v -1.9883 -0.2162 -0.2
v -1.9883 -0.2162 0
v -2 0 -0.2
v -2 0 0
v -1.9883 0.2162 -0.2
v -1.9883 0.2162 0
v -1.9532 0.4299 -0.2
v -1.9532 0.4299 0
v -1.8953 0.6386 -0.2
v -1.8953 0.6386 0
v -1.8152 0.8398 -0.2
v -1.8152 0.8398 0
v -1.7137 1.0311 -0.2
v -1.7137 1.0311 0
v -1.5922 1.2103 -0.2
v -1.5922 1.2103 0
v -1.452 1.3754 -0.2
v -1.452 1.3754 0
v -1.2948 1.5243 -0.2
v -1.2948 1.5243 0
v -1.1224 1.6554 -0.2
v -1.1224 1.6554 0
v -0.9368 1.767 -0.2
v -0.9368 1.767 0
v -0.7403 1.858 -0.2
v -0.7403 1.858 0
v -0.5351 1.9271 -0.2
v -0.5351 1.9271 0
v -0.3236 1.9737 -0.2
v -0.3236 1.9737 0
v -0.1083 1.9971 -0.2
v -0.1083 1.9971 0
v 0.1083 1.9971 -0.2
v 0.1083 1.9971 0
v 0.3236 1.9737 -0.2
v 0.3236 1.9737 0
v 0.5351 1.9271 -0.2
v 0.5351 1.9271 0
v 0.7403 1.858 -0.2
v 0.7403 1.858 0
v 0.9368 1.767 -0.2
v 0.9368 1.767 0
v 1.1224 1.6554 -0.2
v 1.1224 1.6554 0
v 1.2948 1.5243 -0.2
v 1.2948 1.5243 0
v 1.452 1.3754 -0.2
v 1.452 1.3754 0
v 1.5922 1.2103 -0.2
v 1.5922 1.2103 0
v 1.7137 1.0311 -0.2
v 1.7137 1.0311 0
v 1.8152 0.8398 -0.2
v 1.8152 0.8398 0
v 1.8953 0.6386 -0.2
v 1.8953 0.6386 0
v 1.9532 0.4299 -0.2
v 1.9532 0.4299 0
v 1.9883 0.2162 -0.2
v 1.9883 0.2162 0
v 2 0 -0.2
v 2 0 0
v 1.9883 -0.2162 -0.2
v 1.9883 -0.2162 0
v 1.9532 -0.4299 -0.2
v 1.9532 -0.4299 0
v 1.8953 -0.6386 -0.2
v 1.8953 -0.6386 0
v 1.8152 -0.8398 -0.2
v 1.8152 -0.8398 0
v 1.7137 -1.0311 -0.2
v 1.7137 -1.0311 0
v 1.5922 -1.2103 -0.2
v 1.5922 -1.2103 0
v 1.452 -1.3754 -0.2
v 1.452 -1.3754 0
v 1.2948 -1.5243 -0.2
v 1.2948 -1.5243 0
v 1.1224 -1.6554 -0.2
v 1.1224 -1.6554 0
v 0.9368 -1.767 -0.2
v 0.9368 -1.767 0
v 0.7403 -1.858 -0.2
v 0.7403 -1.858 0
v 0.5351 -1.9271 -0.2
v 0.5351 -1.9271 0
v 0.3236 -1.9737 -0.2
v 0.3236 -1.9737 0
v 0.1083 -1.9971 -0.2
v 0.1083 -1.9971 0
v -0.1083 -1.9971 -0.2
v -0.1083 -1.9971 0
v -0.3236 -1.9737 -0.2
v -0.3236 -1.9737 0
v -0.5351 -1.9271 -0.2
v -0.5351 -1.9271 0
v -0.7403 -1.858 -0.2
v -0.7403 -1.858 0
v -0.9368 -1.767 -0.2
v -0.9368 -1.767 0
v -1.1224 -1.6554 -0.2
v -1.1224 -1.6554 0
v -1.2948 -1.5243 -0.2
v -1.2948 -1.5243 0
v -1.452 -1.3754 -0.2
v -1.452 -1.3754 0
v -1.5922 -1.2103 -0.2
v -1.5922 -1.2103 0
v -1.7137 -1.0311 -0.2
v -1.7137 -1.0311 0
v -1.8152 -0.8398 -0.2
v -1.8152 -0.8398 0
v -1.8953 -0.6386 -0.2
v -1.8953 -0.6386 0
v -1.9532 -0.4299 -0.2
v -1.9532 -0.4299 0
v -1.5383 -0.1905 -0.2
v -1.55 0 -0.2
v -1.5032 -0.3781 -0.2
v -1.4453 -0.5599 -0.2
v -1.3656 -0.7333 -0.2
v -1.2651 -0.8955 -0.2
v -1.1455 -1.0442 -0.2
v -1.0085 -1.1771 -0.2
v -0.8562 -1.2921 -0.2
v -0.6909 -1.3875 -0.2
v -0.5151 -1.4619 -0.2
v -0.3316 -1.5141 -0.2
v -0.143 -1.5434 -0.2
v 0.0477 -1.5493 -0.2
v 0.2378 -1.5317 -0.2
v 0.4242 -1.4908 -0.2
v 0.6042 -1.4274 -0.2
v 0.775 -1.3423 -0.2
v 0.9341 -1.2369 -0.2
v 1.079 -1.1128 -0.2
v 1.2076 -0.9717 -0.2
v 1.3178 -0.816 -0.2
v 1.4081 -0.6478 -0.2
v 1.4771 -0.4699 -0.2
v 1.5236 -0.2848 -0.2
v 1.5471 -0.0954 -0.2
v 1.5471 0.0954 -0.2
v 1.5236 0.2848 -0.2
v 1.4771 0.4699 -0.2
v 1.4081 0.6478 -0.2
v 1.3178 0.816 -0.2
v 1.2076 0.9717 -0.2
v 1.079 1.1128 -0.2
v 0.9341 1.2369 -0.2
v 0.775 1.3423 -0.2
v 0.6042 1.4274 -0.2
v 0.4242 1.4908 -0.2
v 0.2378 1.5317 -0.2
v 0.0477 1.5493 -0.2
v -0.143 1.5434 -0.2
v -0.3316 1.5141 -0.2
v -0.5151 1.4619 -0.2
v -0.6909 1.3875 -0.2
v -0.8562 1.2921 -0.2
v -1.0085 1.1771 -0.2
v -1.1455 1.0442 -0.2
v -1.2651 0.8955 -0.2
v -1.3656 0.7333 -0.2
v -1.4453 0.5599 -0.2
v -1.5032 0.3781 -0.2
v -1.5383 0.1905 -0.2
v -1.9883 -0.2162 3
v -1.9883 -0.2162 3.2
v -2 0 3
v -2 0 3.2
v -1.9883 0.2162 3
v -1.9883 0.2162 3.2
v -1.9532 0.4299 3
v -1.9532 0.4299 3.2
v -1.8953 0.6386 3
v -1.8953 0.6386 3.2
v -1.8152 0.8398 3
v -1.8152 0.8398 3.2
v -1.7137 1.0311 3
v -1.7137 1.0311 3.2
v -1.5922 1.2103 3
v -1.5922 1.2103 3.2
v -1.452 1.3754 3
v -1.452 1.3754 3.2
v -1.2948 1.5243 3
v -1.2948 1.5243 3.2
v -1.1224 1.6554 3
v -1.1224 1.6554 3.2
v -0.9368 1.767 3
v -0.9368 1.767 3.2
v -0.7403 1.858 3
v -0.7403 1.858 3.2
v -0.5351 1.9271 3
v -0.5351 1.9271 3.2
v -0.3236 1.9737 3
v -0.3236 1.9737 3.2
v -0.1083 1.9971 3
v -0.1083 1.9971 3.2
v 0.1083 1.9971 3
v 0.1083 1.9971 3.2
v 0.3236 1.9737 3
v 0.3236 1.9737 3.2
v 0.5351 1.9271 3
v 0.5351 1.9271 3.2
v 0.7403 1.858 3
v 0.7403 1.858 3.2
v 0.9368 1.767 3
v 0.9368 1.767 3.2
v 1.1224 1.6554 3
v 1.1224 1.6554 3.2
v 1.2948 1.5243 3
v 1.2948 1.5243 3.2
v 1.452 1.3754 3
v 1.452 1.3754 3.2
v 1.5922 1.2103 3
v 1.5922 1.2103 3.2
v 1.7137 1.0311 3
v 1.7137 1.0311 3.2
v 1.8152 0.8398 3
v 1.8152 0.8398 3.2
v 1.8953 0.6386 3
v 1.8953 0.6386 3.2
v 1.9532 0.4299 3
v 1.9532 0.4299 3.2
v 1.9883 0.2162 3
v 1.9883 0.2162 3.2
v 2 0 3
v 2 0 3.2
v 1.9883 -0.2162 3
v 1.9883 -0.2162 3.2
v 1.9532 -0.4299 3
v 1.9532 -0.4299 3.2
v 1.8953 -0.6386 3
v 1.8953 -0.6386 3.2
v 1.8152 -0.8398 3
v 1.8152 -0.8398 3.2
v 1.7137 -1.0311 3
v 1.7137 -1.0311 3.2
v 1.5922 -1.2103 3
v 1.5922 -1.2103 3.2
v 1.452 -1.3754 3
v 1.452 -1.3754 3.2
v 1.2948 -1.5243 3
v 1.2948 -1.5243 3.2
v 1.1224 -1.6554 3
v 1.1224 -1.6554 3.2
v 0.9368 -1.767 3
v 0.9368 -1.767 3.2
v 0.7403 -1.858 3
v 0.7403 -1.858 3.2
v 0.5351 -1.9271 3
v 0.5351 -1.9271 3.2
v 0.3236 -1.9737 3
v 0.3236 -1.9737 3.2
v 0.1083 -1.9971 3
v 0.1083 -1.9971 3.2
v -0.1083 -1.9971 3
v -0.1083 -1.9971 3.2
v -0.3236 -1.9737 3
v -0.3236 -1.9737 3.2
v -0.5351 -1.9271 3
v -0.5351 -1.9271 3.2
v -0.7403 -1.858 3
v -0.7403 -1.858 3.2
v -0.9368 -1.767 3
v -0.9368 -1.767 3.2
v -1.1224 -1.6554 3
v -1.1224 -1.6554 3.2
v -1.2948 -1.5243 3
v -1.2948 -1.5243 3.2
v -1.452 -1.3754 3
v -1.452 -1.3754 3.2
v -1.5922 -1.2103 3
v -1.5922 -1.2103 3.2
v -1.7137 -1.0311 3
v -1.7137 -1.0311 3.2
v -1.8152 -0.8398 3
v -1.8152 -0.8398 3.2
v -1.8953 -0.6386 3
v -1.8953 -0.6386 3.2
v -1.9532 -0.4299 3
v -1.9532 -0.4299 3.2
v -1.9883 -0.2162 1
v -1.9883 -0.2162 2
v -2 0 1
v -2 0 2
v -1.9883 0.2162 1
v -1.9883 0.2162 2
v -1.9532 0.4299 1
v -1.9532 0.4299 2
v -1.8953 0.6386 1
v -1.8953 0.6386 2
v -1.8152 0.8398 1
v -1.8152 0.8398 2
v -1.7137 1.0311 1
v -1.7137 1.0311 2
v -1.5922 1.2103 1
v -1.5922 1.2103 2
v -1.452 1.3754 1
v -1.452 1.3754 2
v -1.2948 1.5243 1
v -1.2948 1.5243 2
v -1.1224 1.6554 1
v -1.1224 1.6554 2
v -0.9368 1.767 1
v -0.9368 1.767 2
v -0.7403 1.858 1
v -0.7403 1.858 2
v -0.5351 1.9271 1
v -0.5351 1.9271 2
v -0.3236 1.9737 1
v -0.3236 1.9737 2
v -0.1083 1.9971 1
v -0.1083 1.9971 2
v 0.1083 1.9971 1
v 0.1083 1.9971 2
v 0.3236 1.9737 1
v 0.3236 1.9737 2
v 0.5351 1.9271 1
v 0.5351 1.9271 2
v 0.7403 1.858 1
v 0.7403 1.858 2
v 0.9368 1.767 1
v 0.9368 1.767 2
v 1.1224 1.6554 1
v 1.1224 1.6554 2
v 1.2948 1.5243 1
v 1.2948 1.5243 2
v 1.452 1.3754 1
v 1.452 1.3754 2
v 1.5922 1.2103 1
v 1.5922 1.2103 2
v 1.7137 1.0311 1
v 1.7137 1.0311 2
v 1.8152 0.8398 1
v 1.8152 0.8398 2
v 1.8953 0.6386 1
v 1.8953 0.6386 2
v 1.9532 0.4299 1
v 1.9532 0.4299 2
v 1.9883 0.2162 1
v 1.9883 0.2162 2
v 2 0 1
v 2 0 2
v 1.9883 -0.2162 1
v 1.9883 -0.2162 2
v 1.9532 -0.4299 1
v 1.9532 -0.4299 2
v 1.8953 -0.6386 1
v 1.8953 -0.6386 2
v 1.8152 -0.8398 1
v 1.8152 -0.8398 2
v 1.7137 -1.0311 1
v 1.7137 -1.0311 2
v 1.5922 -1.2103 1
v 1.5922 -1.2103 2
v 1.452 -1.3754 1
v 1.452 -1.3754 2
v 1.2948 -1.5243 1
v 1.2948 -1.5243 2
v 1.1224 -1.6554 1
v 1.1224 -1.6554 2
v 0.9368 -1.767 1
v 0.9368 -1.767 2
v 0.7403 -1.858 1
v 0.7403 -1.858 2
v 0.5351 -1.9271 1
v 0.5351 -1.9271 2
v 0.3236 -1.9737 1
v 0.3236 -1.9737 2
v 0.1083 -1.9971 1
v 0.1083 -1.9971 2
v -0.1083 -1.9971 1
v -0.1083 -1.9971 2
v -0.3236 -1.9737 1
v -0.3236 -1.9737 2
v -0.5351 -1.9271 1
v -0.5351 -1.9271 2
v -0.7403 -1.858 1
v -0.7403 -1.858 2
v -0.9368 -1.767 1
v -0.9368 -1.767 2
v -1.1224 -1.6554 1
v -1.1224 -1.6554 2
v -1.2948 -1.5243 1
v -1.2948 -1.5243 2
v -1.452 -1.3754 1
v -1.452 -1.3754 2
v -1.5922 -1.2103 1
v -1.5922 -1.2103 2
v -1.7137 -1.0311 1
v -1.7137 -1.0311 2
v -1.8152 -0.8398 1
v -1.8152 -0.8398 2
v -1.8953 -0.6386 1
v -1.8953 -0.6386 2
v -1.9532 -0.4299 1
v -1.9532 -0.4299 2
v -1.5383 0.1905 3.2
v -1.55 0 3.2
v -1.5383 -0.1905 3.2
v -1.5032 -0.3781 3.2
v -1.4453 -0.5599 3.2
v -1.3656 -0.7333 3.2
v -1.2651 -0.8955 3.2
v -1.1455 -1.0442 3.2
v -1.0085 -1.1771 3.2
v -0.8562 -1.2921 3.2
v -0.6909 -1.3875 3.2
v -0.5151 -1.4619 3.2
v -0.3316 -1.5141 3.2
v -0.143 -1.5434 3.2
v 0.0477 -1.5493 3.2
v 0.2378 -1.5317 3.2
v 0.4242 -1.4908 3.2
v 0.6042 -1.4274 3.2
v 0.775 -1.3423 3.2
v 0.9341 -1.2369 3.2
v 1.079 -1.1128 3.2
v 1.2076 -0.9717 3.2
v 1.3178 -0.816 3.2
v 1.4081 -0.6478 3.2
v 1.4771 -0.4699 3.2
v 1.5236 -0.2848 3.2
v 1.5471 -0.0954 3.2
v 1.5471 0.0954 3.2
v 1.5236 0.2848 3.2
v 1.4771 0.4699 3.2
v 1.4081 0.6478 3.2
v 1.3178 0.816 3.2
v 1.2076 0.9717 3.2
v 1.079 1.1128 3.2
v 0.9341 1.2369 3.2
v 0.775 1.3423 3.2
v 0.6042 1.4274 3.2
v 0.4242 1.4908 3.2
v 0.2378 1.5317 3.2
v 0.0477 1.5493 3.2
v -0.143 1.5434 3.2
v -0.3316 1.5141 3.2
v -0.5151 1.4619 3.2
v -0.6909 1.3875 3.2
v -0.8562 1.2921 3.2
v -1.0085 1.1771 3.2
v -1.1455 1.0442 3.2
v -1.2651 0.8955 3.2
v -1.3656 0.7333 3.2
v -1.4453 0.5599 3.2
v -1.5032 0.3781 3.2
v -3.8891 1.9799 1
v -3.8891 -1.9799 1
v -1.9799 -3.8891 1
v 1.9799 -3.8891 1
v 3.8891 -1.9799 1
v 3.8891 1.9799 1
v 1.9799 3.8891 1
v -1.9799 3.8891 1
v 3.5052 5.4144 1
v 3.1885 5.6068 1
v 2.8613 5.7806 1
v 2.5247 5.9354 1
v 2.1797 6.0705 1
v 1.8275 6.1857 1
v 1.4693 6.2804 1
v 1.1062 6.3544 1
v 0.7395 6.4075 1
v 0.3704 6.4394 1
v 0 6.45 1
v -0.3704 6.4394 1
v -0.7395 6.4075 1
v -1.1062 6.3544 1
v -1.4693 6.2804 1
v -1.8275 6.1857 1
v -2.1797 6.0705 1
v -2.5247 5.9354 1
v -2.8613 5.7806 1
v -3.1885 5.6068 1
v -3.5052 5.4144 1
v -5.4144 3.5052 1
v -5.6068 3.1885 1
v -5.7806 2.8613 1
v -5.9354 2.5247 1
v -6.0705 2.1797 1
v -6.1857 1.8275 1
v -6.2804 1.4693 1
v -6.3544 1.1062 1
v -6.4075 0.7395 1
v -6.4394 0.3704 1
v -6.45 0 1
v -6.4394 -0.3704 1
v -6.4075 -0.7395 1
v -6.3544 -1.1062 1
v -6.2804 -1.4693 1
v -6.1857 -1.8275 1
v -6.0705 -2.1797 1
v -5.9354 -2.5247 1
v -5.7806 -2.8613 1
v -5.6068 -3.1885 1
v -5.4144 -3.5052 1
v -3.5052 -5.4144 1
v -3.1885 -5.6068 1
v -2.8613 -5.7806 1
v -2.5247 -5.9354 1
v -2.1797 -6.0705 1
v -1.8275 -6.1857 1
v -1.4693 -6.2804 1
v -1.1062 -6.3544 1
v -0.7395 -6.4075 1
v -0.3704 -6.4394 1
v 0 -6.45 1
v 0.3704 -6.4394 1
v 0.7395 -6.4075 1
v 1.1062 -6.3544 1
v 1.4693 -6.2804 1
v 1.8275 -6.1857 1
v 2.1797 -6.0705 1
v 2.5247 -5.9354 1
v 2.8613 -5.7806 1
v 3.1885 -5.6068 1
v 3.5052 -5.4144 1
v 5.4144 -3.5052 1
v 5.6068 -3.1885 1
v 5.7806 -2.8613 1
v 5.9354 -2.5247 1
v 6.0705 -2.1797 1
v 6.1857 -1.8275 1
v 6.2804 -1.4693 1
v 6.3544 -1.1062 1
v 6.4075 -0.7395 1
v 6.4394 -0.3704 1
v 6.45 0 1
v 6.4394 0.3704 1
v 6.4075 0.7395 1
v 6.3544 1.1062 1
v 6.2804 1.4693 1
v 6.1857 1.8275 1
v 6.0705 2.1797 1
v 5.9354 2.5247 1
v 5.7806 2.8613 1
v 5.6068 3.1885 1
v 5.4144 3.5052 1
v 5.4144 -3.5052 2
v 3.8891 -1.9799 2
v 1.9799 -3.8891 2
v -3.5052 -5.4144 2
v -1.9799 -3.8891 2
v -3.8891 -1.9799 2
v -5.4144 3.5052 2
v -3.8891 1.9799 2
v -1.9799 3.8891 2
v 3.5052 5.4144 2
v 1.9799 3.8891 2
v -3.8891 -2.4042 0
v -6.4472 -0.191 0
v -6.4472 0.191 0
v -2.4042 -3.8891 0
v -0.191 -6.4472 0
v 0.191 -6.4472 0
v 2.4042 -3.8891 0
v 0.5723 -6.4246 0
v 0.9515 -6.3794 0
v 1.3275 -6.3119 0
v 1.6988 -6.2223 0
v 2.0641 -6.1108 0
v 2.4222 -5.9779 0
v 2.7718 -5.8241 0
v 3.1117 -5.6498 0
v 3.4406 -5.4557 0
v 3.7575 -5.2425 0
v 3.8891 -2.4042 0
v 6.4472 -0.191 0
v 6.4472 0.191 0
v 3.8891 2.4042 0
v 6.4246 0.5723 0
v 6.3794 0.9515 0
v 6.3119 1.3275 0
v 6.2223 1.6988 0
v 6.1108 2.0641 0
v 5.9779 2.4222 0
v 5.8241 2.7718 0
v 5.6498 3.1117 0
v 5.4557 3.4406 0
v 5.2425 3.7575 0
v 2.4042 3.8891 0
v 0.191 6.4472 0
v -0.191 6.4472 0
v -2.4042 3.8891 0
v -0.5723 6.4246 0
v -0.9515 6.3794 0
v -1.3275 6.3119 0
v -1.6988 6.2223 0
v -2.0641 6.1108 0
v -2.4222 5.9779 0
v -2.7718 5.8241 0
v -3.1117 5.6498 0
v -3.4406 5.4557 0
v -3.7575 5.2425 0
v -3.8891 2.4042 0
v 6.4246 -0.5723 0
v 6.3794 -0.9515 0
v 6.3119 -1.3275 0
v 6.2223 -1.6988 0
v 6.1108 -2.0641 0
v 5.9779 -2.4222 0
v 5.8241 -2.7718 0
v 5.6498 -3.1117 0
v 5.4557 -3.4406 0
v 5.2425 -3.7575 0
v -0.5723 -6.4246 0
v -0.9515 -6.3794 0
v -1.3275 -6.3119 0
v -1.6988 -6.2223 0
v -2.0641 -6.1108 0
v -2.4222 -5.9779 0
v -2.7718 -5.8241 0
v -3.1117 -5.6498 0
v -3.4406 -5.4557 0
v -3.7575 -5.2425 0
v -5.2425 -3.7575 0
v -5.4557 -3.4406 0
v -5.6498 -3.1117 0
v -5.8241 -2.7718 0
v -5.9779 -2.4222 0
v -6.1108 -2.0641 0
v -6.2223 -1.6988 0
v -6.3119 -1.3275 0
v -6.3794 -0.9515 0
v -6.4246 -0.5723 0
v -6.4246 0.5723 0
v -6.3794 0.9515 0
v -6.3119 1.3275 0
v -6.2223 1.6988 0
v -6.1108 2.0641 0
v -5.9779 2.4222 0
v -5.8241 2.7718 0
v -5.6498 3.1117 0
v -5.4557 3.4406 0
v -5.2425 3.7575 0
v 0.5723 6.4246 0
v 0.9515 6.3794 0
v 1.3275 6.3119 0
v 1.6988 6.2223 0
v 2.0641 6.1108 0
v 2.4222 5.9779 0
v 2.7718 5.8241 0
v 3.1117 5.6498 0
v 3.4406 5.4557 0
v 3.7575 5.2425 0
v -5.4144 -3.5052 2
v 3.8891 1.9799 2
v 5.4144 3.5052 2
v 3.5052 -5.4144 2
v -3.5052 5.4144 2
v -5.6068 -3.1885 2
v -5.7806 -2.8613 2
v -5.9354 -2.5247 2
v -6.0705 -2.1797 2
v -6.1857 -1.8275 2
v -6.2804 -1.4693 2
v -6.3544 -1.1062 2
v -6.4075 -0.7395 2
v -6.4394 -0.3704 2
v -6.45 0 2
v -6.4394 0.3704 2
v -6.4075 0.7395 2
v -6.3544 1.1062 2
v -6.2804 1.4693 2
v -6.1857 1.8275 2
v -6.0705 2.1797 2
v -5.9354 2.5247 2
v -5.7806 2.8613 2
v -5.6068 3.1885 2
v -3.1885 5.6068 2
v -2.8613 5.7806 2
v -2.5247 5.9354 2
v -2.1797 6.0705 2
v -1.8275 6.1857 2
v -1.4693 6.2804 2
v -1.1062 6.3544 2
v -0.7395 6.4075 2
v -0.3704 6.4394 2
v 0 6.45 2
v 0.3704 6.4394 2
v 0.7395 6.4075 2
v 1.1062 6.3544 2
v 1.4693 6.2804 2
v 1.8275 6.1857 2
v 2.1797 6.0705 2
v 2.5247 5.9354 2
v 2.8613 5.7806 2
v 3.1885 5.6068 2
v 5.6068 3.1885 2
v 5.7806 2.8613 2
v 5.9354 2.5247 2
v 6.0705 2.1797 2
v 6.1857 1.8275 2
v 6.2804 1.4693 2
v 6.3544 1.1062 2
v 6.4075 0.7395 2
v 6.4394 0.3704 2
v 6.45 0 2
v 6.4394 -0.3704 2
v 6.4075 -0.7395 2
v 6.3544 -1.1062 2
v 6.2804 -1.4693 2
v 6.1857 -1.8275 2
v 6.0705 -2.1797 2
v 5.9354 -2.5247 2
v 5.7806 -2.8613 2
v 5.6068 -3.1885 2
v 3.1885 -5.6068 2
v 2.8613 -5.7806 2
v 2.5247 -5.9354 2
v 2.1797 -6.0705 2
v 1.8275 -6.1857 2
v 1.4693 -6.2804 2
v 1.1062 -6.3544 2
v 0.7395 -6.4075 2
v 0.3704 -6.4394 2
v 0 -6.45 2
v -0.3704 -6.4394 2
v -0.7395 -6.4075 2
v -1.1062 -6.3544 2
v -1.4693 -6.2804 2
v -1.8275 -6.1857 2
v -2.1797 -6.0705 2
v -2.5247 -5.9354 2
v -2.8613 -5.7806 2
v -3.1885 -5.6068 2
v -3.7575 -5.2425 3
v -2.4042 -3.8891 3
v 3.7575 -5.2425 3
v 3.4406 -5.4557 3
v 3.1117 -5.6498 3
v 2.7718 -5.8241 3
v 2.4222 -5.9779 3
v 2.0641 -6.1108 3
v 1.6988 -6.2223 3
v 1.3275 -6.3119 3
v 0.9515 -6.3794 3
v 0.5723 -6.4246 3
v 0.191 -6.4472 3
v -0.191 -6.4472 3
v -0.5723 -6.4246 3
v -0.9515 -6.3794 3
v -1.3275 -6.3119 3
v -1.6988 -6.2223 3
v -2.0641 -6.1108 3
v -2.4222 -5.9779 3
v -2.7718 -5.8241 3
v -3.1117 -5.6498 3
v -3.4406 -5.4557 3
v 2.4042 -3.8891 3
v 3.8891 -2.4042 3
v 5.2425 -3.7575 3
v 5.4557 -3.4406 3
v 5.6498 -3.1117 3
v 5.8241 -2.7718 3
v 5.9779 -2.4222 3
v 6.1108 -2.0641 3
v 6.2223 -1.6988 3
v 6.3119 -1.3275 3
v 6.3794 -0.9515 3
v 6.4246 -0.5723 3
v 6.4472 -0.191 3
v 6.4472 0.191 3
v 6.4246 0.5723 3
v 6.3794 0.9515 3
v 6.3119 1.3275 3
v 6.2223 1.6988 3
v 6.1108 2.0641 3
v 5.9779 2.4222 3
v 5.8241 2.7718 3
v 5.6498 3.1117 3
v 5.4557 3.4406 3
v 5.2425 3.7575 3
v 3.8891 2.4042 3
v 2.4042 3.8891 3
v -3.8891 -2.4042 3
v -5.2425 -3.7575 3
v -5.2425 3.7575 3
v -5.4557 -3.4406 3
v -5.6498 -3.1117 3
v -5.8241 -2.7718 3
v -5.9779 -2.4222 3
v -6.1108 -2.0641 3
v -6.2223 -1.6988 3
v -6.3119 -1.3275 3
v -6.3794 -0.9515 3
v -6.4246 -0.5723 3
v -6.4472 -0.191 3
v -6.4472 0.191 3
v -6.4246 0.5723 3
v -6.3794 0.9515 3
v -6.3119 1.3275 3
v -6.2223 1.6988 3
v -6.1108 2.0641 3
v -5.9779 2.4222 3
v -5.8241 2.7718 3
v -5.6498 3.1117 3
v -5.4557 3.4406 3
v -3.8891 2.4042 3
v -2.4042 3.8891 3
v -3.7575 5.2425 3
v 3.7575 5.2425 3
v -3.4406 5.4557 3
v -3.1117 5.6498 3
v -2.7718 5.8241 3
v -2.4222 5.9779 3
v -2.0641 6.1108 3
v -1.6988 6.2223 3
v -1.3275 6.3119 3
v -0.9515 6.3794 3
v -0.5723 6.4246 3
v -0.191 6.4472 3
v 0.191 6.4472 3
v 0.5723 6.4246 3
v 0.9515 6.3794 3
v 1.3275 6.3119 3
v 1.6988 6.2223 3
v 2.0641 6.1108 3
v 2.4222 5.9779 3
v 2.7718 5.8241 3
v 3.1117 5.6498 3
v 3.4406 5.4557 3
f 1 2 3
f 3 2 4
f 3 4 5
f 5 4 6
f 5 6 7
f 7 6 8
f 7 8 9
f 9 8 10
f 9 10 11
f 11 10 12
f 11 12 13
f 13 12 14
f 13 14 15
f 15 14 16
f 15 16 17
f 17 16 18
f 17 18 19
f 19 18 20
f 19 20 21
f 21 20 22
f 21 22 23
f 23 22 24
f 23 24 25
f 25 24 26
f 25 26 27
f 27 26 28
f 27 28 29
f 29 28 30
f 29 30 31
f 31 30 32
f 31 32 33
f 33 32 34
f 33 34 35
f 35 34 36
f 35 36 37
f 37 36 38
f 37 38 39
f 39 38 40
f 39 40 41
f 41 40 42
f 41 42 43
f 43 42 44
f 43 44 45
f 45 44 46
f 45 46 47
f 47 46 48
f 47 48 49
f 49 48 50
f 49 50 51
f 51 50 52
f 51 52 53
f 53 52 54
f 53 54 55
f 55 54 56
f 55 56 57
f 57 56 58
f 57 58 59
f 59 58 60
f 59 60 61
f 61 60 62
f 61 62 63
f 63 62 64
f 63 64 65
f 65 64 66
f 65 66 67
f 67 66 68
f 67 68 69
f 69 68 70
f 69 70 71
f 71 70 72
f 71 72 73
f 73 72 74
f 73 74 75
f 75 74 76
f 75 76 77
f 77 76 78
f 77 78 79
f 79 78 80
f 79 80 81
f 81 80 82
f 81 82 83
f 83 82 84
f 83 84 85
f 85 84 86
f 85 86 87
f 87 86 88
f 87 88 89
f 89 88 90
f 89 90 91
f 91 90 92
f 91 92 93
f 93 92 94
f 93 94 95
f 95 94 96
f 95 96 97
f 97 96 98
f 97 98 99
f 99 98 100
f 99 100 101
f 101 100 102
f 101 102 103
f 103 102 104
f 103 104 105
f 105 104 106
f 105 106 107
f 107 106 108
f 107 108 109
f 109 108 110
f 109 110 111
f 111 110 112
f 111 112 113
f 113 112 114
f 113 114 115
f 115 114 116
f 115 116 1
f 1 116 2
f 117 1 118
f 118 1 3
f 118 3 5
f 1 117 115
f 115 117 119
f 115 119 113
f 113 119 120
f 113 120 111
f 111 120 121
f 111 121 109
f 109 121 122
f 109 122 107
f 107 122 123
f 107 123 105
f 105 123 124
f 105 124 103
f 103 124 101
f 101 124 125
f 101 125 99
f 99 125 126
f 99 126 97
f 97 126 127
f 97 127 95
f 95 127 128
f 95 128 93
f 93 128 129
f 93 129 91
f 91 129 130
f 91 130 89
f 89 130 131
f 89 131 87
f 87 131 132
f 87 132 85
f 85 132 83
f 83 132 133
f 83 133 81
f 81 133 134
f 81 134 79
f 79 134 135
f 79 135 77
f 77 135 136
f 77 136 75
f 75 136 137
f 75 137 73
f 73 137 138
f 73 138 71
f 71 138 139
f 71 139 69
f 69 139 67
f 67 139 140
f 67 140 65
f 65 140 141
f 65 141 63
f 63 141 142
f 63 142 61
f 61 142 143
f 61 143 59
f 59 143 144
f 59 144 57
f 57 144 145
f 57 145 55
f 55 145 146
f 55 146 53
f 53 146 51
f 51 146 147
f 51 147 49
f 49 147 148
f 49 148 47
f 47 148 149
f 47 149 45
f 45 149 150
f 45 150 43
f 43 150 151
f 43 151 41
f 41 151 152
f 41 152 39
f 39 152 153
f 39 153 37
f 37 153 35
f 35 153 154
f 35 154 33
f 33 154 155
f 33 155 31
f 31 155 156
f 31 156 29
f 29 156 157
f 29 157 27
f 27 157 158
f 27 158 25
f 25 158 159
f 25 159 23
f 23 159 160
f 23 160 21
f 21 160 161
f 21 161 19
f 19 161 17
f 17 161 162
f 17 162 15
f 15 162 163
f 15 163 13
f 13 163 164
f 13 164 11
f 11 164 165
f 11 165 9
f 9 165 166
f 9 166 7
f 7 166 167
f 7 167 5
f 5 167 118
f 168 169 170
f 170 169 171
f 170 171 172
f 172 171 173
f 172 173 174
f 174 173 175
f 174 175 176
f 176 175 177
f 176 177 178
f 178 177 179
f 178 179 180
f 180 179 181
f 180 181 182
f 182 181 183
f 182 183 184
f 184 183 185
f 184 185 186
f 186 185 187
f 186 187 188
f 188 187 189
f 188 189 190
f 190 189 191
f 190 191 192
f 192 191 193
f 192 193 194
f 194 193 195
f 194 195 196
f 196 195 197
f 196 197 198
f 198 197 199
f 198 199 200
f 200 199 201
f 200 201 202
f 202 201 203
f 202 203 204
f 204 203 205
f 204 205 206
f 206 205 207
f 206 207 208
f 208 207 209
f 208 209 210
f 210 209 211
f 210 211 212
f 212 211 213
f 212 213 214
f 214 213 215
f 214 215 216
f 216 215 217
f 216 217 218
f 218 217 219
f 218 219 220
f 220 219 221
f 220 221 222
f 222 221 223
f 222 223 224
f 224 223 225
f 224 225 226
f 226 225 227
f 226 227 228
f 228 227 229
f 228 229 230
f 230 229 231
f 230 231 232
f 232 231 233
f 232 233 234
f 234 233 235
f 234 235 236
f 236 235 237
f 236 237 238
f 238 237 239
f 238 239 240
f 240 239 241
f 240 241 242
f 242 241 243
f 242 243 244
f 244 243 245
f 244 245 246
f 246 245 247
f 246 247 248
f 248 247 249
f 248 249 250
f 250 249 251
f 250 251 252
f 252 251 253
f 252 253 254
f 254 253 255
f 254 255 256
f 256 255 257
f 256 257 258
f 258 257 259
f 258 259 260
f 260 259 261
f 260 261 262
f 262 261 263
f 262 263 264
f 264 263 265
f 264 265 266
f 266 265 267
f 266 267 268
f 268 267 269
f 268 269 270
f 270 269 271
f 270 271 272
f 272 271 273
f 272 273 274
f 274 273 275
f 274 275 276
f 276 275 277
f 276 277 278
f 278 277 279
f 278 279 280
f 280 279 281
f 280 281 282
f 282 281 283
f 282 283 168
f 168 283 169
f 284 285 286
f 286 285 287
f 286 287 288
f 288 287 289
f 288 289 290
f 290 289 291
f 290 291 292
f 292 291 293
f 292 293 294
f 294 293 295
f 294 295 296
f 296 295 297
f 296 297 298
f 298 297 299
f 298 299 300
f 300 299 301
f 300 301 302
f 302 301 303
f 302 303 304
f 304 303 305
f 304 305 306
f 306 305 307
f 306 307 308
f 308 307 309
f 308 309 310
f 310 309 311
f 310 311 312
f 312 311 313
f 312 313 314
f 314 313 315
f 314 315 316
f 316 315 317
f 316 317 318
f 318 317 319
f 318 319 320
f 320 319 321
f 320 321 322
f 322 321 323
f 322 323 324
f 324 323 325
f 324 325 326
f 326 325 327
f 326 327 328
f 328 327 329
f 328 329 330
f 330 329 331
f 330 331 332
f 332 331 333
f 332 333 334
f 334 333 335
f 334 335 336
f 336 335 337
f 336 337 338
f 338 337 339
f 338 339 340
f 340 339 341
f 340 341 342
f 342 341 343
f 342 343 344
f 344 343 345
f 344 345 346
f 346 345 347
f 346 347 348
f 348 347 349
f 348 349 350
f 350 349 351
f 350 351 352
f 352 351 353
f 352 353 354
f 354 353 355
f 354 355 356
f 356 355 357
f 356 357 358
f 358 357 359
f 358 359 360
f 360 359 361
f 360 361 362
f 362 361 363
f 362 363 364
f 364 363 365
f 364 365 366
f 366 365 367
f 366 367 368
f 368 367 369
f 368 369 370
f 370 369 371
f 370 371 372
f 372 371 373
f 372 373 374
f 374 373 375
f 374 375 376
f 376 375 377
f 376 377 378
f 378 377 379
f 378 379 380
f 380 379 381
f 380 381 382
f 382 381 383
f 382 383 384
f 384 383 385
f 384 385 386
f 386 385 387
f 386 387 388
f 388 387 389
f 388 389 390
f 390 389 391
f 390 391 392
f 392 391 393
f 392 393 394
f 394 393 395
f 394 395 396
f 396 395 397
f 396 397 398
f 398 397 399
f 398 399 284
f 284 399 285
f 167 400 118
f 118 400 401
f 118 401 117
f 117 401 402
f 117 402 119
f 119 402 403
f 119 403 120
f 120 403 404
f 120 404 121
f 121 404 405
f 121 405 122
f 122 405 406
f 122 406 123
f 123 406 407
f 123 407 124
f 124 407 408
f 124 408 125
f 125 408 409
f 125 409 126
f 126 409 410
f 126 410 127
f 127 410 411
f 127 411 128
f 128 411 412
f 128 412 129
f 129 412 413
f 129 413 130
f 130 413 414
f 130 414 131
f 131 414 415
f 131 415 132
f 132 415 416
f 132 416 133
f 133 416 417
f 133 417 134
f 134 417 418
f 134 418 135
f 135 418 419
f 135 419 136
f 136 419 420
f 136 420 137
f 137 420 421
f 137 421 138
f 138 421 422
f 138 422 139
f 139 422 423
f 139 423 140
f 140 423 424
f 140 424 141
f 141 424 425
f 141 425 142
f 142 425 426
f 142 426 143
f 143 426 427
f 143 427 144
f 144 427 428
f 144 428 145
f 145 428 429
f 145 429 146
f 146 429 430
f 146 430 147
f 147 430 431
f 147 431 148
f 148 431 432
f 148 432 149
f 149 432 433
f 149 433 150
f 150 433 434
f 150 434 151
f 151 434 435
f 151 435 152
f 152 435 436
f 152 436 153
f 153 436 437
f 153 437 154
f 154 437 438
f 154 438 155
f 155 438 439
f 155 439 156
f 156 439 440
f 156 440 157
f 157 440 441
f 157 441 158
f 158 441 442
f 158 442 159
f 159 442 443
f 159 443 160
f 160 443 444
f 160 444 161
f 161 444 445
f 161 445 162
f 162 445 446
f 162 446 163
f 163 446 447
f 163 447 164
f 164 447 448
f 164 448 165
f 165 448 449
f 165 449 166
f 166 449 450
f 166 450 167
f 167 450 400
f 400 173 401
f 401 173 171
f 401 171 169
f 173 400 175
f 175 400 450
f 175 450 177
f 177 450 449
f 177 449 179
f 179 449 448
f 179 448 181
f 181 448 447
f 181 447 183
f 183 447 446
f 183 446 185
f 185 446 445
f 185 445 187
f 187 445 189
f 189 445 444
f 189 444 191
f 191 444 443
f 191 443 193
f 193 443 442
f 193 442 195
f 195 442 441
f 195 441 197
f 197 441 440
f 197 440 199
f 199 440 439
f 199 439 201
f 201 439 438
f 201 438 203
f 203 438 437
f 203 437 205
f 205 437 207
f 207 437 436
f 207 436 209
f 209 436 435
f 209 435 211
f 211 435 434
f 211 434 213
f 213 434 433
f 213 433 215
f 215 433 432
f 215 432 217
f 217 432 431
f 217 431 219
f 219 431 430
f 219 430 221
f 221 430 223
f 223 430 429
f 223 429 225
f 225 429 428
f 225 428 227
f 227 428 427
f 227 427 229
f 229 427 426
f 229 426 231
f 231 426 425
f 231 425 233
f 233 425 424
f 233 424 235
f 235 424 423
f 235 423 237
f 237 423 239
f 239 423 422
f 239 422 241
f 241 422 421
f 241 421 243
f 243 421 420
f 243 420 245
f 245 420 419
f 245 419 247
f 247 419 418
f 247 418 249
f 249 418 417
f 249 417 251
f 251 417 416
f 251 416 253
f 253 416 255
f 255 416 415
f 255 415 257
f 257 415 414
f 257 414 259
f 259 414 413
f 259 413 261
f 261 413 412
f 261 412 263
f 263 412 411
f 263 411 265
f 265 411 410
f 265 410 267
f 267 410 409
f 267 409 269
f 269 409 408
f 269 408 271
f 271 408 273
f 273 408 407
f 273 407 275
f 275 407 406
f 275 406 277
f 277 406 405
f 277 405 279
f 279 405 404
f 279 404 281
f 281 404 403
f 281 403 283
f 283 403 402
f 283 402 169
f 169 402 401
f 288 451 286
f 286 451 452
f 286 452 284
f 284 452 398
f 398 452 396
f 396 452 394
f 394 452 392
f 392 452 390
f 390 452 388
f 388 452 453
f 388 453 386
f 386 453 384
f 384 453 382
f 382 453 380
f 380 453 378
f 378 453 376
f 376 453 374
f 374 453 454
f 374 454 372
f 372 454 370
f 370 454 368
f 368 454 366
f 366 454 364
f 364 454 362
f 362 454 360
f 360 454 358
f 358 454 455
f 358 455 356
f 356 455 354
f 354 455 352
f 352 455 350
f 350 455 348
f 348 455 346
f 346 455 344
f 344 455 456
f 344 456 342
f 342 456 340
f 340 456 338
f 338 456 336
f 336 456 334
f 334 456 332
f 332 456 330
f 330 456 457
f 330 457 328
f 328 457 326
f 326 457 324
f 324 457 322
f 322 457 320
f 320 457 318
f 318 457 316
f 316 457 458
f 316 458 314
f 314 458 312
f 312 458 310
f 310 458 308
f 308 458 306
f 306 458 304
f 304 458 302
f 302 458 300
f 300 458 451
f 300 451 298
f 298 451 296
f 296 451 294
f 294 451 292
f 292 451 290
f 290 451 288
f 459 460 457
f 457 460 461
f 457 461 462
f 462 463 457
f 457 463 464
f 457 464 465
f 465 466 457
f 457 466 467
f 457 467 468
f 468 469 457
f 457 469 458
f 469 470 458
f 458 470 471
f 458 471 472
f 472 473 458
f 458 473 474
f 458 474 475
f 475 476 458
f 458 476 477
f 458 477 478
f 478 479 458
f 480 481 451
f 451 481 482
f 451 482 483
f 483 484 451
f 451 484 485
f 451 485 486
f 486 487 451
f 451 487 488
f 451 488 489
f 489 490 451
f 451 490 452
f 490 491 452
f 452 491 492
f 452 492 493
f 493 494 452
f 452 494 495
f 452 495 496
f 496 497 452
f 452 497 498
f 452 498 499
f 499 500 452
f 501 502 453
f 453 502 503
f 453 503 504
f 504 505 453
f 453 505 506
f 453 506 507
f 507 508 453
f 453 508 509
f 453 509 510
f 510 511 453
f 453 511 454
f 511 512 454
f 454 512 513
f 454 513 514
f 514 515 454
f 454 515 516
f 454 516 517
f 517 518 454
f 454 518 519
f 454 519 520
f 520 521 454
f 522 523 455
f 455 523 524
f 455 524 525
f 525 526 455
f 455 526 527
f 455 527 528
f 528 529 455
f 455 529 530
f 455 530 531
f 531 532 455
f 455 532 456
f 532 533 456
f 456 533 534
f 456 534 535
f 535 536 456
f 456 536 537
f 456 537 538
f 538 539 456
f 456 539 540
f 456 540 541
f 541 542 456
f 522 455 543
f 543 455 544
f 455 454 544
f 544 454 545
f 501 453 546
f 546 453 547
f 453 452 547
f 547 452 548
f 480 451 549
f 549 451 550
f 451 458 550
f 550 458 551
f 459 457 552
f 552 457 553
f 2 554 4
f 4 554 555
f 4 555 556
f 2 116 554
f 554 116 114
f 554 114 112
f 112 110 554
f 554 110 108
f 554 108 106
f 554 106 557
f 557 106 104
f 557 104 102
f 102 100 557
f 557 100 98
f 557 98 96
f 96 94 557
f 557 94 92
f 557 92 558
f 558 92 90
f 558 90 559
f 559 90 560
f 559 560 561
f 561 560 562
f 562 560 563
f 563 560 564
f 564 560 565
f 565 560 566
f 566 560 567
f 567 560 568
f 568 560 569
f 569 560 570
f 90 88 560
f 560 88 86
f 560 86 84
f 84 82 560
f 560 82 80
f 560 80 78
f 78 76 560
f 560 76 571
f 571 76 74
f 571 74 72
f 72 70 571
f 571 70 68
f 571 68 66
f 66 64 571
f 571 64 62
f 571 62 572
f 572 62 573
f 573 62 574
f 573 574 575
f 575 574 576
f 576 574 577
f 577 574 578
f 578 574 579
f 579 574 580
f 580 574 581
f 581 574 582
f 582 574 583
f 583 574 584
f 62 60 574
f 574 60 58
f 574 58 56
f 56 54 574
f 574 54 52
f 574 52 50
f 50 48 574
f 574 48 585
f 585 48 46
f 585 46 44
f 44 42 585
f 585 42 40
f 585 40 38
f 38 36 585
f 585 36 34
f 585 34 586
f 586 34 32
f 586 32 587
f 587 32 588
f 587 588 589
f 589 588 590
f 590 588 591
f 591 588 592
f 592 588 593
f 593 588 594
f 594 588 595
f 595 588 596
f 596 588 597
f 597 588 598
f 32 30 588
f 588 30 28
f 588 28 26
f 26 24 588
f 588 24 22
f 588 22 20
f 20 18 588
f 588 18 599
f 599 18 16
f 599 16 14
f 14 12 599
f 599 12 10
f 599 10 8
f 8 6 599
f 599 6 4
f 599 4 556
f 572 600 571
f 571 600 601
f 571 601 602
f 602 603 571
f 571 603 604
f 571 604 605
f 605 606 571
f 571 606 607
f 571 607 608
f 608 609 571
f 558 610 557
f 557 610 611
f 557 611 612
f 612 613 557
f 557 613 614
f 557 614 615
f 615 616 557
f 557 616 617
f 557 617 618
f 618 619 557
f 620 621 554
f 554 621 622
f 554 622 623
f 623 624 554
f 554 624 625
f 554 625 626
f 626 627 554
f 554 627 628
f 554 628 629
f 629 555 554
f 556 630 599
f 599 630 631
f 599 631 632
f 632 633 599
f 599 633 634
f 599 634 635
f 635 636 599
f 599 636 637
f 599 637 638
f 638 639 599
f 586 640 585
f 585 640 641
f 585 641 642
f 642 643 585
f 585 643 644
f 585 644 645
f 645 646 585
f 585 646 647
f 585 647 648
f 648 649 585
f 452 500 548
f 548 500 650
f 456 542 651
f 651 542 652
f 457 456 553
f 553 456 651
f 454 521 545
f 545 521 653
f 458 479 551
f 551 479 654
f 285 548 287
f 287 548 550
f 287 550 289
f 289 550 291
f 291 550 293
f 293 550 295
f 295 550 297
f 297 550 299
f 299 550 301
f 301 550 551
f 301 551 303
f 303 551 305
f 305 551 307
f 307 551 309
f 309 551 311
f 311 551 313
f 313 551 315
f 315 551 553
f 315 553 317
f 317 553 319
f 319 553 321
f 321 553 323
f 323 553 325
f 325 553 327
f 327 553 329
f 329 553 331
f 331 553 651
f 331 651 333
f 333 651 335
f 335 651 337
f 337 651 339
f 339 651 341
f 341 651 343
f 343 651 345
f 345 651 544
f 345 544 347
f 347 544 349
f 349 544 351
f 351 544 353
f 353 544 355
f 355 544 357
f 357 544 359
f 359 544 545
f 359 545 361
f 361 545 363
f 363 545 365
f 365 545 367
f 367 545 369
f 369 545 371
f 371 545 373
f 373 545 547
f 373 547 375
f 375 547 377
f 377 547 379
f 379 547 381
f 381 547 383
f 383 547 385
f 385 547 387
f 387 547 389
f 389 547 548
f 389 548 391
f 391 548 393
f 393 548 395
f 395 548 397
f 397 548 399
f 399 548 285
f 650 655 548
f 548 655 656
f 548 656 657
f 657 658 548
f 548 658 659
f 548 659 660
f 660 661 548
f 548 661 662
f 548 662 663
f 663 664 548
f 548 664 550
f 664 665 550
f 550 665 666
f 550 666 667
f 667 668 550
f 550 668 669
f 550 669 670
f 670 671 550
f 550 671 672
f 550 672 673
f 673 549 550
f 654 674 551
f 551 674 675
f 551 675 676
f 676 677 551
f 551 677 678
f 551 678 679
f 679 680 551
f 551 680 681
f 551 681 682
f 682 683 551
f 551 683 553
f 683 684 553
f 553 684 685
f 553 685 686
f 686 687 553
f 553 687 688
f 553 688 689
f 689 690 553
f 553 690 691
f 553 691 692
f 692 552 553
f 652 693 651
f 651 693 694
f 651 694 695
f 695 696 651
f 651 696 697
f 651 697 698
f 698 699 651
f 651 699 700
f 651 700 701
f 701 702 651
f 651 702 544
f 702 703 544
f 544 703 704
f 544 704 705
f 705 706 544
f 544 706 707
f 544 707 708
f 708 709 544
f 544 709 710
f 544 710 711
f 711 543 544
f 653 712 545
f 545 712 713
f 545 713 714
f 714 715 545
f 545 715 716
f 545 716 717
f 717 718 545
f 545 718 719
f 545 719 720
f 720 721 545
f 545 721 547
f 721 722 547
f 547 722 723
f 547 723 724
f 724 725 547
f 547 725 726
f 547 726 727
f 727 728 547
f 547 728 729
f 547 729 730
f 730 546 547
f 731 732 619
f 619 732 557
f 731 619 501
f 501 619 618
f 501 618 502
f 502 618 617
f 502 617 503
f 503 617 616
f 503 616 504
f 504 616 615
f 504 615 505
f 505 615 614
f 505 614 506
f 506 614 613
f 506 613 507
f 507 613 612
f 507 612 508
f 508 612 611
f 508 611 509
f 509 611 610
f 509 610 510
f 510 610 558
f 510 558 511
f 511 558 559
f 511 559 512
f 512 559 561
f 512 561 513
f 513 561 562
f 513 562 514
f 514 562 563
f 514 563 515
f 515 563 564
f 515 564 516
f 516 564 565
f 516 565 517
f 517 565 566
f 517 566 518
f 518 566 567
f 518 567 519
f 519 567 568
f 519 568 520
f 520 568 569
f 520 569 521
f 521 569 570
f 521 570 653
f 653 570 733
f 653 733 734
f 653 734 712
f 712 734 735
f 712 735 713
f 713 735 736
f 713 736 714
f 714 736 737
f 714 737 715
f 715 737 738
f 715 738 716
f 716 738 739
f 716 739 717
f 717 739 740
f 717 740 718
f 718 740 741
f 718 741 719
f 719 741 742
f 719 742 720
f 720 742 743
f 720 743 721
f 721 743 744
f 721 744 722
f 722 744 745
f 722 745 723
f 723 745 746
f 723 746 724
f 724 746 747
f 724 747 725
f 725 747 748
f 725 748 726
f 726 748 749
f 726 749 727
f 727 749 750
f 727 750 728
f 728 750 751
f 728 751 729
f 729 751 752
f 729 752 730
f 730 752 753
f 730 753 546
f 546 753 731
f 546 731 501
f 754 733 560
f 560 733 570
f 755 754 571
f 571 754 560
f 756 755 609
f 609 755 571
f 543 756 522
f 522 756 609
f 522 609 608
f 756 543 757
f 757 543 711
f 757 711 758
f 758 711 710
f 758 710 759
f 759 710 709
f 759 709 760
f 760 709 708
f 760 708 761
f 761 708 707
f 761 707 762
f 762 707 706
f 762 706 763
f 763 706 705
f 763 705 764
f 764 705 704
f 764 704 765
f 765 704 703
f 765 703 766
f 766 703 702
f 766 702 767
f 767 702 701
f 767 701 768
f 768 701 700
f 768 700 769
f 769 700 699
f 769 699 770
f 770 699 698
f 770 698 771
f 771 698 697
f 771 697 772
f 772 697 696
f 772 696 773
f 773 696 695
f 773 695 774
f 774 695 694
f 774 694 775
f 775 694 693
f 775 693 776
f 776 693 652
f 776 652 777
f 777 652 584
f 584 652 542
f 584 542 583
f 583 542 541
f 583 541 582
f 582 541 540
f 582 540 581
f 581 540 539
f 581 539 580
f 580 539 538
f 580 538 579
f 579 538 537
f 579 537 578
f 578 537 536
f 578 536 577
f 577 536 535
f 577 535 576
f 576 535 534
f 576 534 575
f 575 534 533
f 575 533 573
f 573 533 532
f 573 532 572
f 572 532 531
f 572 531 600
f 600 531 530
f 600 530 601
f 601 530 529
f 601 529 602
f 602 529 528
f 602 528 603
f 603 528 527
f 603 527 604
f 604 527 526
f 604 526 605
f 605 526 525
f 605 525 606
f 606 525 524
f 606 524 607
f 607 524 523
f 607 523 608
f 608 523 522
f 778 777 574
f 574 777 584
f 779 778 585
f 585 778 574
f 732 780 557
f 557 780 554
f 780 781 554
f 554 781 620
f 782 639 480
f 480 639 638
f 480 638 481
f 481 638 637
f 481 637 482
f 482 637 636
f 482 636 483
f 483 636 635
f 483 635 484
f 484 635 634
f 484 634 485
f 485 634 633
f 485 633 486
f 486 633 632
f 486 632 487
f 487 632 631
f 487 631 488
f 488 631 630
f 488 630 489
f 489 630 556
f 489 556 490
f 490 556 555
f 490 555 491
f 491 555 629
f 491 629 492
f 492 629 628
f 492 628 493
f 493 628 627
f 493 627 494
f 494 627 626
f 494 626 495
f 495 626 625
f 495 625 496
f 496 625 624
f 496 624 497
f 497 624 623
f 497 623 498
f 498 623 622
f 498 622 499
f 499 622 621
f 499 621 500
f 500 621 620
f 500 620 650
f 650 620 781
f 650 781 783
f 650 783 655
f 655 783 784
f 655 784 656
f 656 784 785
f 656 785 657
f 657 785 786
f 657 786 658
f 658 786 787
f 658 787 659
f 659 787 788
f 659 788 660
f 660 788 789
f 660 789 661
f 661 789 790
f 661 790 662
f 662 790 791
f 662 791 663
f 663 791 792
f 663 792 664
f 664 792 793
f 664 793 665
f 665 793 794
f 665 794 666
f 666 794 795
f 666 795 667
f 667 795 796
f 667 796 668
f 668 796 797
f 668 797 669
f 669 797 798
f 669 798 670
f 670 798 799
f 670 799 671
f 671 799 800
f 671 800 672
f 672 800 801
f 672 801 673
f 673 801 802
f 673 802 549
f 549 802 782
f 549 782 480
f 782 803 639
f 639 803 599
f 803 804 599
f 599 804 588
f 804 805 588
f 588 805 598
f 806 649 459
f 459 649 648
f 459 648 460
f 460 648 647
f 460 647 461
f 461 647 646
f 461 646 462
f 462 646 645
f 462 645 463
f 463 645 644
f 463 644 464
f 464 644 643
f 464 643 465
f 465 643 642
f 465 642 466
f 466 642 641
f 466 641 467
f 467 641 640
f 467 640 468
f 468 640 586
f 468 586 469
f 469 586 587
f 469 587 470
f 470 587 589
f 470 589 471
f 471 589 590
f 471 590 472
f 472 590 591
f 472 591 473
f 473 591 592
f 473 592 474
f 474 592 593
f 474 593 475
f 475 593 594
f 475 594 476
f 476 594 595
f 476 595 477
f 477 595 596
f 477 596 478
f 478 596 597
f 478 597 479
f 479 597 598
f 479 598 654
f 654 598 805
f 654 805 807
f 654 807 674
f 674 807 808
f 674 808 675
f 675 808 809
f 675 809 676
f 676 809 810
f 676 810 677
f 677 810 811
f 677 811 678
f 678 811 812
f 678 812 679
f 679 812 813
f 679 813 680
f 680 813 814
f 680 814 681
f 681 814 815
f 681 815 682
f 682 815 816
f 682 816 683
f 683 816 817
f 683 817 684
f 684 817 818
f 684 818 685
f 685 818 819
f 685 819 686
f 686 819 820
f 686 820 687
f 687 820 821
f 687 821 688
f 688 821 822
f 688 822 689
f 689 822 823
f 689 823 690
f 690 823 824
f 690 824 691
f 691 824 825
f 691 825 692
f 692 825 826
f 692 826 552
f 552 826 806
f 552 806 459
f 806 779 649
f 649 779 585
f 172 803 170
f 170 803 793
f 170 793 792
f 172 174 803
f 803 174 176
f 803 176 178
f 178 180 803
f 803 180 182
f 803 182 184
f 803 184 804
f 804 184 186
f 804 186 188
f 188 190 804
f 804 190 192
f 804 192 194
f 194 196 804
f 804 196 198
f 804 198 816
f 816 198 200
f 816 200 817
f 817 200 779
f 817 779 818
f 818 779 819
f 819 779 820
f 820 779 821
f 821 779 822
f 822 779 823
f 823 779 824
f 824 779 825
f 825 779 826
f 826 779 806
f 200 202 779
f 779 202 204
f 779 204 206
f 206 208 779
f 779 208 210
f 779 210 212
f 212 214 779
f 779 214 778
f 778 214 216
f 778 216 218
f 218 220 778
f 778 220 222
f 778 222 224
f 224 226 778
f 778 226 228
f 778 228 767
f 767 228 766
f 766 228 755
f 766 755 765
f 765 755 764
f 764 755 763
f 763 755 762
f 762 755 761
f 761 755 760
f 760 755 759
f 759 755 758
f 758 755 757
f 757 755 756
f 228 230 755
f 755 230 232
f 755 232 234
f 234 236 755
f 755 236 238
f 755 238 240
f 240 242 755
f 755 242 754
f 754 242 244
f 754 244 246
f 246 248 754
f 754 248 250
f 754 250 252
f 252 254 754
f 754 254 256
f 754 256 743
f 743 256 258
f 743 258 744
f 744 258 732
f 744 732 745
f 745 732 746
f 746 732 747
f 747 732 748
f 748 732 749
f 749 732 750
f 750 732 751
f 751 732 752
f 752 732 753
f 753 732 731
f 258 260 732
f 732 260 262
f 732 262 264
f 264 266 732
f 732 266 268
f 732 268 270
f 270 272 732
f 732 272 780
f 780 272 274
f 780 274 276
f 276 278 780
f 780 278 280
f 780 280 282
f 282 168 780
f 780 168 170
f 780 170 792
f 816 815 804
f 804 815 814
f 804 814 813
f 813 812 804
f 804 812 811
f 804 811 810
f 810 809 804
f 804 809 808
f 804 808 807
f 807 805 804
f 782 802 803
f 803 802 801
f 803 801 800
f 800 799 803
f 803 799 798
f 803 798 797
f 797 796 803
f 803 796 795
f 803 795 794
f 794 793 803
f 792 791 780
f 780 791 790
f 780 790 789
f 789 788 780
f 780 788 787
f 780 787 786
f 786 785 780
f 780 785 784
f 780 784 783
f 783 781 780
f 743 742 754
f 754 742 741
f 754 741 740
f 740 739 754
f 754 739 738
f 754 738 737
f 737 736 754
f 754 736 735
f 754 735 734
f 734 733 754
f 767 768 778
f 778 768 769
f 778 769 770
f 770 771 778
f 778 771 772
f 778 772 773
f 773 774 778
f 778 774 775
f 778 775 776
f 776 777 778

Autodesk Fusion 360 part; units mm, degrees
sketch "Sketch1" plane through (0, 0, 0) normal (0, 0, 1) x (1, 0, 0) in component "Component"
  circle A0 centre (0, 0) radius 1.55
  circle A1 centre (0, 0) radius 6.45
  line L0 (-3.8891, 2.4042) -> (-5.2425, 3.7575)
  line L1 (-3.1466, 3.1466) -> (-3.8891, 2.4042)
  line L2 (-3.1466, 3.1466) -> (-2.4042, 3.8891)
  line L3 (-2.4042, 3.8891) -> (-3.7575, 5.2425)
  line L4 (-2.4042, -3.8891) -> (-3.7575, -5.2425)
  line L5 (-3.1466, -3.1466) -> (-2.4042, -3.8891)
  line L6 (-3.1466, -3.1466) -> (-3.8891, -2.4042)
  line L7 (-3.8891, -2.4042) -> (-5.2425, -3.7575)
  line L8 (3.8891, -2.4042) -> (5.2425, -3.7575)
  line L9 (3.1466, -3.1466) -> (3.8891, -2.4042)
  line L10 (3.1466, -3.1466) -> (2.4042, -3.8891)
  line L11 (2.4042, -3.8891) -> (3.7575, -5.2425)
  line L12 (2.4042, 3.8891) -> (3.7575, 5.2425)
  line L13 (3.1466, 3.1466) -> (2.4042, 3.8891)
  line L14 (3.1466, 3.1466) -> (3.8891, 2.4042)
  line L15 (3.8891, 2.4042) -> (5.2425, 3.7575)
  circle A2 centre (0, 0) radius 2
  line L16 (-1.9799, 3.8891) -> (-3.5052, 5.4144)
  line L17 (-2.9345, 2.9345) -> (-1.9799, 3.8891)
  line L18 (-2.9345, 2.9345) -> (-3.8891, 1.9799)
  line L19 (-3.8891, 1.9799) -> (-5.4144, 3.5052)
  line L20 (-3.8891, -1.9799) -> (-5.4144, -3.5052)
  line L21 (-2.9345, -2.9345) -> (-3.8891, -1.9799)
  line L22 (-2.9345, -2.9345) -> (-1.9799, -3.8891)
  line L23 (-1.9799, -3.8891) -> (-3.5052, -5.4144)
  line L24 (1.9799, -3.8891) -> (3.5052, -5.4144)
  line L25 (2.9345, -2.9345) -> (1.9799, -3.8891)
  line L26 (2.9345, -2.9345) -> (3.8891, -1.9799)
  line L27 (3.8891, -1.9799) -> (5.4144, -3.5052)
  line L28 (3.8891, 1.9799) -> (5.4144, 3.5052)
  line L29 (2.9345, 2.9345) -> (3.8891, 1.9799)
  line L30 (2.9345, 2.9345) -> (1.9799, 3.8891)
  line L31 (1.9799, 3.8891) -> (3.5052, 5.4144)
  dimension "d1" = 3.1
  dimension "d2" = 12.9
  dimension "d13" = 360
extrude "Extrude1" add sketch "Sketch1" along normal blind 3 contours A1 L16 L17 L18 L19 L20 L21 L22 L23 L24 L25 L26 L27 L28 L29 L30 L31 | A1 L12 L13 L14 L15 L28 L29 L30 L31 | A1 L8 L9 L10 L11 L24 L25 L26 L27 | A1 L0 L1 L2 L3 L16 L17 L18 L19 | A1 L4 L5 L6 L7 L20 L21 L22 L23 | A2 in component "Component"
extrude "Extrude2" cut 1 faces at (0.1484, 4.7376, 0) along direction (0, 0, 1) blind 2 in component "Component"
extrude "Extrude3" add sketch "Sketch1" along normal blind 2 contours A1 L12 L13 L14 L15 L28 L29 L30 L31 | A1 L8 L9 L10 L11 L24 L25 L26 L27 | A1 L0 L1 L2 L3 L16 L17 L18 L19 | A1 L4 L5 L6 L7 L20 L21 L22 L23 | A2 in component "Component"
extrude "Extrude4" add sketch "Sketch1" along normal blind 1 contours A1 L16 L17 L18 L19 L20 L21 L22 L23 L24 L25 L26 L27 L28 L29 L30 L31 in component "Component"
extrude "Extrude5" cut sketch "Sketch1" along normal blind 5 contours A2 in component "Component"
extrude "Extrude6" add sketch "Sketch1" along normal blind 3.2 contours A2 in component "Component"
extrude "Extrude7" add sketch "Sketch1" against normal blind 0.2 contours A2 in component "Component"
component "Component" placed x (1, 0, 0) y (0, 1, 0) z (0, 0, 1) at (0, 0, 0)
